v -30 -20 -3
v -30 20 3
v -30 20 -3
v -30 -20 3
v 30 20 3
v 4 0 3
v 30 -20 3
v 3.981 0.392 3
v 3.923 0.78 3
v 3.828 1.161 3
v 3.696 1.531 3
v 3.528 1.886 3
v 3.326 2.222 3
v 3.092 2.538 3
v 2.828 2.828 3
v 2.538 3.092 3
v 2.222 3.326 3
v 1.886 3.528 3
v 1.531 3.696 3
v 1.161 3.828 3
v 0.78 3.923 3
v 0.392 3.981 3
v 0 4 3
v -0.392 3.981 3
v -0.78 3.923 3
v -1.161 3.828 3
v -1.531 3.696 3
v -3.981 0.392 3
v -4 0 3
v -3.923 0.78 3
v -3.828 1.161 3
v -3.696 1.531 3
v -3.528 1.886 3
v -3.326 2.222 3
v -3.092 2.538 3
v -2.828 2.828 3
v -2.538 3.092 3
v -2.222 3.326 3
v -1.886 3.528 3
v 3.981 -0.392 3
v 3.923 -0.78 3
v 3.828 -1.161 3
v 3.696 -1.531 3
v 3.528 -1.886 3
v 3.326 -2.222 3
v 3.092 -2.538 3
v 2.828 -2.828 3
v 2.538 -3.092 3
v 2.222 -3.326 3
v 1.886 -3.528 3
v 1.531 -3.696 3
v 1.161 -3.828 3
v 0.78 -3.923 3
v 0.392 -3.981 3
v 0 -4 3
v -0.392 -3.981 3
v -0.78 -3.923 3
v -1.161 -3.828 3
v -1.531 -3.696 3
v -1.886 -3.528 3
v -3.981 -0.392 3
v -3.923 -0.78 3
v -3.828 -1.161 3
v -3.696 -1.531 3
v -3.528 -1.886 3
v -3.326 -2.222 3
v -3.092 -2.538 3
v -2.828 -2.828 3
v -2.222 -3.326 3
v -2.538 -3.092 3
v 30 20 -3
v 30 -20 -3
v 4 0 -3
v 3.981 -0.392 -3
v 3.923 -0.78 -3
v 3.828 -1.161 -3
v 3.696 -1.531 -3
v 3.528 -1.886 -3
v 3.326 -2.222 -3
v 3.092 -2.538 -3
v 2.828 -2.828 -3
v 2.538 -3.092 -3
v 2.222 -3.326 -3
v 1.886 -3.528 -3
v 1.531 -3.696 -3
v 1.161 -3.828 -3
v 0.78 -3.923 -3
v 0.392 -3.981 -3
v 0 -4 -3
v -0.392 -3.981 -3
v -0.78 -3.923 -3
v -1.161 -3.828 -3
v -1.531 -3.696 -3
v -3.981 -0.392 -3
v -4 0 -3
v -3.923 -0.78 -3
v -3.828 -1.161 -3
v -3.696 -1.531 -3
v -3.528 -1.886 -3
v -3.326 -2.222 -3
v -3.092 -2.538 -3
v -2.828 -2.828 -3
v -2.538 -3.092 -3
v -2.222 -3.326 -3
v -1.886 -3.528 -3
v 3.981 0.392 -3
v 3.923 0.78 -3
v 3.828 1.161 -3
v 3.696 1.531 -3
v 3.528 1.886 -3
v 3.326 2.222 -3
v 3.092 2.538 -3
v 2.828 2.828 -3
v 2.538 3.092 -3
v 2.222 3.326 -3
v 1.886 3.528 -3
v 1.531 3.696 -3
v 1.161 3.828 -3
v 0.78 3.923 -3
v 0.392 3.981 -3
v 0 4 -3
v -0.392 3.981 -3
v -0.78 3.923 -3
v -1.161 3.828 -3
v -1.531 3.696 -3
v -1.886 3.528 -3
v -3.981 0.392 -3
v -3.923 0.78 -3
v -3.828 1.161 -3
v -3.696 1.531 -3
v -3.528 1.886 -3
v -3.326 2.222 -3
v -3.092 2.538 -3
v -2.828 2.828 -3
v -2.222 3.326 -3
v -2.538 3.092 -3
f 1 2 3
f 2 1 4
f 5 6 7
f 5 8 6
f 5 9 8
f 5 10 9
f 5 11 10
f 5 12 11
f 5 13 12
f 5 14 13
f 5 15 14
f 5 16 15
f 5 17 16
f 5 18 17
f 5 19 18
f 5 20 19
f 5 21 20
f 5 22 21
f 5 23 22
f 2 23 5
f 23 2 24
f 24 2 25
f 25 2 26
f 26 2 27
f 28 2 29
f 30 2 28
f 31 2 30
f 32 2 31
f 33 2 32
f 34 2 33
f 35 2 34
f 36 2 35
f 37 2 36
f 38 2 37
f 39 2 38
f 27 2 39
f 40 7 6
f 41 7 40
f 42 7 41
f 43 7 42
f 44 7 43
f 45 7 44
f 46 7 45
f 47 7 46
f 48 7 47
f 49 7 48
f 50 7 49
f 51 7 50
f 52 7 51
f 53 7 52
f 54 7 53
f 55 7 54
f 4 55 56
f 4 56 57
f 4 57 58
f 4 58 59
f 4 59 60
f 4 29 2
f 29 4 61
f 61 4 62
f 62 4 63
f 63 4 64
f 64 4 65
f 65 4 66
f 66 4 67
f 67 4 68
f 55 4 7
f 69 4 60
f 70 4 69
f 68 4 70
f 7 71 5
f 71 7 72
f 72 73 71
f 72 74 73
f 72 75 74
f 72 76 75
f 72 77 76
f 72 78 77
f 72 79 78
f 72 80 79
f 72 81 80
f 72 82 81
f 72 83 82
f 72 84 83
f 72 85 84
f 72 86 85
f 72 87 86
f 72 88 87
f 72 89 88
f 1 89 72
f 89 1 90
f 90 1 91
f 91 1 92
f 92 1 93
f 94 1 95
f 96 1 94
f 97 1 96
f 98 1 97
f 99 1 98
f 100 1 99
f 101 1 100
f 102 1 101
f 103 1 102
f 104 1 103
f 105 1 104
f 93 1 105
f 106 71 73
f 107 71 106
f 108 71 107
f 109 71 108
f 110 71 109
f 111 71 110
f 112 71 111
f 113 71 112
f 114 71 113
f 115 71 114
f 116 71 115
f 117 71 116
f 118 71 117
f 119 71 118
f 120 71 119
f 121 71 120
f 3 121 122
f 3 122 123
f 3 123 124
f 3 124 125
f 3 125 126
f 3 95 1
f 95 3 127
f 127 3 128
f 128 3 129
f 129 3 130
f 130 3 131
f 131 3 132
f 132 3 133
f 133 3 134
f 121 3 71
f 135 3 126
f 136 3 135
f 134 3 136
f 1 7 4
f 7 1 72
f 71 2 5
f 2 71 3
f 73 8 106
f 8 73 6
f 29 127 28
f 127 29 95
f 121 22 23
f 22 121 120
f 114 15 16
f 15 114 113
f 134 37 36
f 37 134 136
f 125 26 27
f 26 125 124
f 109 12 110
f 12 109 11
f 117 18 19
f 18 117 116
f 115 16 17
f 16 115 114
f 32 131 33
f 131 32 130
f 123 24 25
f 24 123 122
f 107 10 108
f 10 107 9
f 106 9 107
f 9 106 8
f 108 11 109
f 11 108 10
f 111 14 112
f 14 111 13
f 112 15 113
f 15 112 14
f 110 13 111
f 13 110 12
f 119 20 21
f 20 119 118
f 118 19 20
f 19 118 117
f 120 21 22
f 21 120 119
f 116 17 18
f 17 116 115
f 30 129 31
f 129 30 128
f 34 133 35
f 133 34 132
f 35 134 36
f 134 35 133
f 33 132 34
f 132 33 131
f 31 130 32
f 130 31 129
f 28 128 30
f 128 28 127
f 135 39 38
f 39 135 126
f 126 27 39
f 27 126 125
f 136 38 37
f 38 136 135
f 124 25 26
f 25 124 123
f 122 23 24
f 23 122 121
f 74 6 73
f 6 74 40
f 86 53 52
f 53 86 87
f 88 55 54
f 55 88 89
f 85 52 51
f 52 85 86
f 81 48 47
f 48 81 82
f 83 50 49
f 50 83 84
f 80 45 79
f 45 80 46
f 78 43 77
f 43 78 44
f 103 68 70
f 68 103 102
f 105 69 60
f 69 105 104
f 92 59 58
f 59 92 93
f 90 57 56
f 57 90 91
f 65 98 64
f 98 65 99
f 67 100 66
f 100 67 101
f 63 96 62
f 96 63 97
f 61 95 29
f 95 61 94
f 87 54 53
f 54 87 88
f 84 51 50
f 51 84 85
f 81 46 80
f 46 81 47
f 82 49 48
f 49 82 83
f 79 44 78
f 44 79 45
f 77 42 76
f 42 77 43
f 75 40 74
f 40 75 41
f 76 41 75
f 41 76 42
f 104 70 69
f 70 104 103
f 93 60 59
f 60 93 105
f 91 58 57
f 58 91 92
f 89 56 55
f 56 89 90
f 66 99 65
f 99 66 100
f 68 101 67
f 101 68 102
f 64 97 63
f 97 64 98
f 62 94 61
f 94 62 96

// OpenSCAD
// Rectangular plate with centered hole
difference() {
    // Main plate body
    cube([60, 40, 6], center = true);
    
    // Cylindrical hole along Z axis
    cylinder(h = 7, d = 8, center = true, $fn = 64);
}
